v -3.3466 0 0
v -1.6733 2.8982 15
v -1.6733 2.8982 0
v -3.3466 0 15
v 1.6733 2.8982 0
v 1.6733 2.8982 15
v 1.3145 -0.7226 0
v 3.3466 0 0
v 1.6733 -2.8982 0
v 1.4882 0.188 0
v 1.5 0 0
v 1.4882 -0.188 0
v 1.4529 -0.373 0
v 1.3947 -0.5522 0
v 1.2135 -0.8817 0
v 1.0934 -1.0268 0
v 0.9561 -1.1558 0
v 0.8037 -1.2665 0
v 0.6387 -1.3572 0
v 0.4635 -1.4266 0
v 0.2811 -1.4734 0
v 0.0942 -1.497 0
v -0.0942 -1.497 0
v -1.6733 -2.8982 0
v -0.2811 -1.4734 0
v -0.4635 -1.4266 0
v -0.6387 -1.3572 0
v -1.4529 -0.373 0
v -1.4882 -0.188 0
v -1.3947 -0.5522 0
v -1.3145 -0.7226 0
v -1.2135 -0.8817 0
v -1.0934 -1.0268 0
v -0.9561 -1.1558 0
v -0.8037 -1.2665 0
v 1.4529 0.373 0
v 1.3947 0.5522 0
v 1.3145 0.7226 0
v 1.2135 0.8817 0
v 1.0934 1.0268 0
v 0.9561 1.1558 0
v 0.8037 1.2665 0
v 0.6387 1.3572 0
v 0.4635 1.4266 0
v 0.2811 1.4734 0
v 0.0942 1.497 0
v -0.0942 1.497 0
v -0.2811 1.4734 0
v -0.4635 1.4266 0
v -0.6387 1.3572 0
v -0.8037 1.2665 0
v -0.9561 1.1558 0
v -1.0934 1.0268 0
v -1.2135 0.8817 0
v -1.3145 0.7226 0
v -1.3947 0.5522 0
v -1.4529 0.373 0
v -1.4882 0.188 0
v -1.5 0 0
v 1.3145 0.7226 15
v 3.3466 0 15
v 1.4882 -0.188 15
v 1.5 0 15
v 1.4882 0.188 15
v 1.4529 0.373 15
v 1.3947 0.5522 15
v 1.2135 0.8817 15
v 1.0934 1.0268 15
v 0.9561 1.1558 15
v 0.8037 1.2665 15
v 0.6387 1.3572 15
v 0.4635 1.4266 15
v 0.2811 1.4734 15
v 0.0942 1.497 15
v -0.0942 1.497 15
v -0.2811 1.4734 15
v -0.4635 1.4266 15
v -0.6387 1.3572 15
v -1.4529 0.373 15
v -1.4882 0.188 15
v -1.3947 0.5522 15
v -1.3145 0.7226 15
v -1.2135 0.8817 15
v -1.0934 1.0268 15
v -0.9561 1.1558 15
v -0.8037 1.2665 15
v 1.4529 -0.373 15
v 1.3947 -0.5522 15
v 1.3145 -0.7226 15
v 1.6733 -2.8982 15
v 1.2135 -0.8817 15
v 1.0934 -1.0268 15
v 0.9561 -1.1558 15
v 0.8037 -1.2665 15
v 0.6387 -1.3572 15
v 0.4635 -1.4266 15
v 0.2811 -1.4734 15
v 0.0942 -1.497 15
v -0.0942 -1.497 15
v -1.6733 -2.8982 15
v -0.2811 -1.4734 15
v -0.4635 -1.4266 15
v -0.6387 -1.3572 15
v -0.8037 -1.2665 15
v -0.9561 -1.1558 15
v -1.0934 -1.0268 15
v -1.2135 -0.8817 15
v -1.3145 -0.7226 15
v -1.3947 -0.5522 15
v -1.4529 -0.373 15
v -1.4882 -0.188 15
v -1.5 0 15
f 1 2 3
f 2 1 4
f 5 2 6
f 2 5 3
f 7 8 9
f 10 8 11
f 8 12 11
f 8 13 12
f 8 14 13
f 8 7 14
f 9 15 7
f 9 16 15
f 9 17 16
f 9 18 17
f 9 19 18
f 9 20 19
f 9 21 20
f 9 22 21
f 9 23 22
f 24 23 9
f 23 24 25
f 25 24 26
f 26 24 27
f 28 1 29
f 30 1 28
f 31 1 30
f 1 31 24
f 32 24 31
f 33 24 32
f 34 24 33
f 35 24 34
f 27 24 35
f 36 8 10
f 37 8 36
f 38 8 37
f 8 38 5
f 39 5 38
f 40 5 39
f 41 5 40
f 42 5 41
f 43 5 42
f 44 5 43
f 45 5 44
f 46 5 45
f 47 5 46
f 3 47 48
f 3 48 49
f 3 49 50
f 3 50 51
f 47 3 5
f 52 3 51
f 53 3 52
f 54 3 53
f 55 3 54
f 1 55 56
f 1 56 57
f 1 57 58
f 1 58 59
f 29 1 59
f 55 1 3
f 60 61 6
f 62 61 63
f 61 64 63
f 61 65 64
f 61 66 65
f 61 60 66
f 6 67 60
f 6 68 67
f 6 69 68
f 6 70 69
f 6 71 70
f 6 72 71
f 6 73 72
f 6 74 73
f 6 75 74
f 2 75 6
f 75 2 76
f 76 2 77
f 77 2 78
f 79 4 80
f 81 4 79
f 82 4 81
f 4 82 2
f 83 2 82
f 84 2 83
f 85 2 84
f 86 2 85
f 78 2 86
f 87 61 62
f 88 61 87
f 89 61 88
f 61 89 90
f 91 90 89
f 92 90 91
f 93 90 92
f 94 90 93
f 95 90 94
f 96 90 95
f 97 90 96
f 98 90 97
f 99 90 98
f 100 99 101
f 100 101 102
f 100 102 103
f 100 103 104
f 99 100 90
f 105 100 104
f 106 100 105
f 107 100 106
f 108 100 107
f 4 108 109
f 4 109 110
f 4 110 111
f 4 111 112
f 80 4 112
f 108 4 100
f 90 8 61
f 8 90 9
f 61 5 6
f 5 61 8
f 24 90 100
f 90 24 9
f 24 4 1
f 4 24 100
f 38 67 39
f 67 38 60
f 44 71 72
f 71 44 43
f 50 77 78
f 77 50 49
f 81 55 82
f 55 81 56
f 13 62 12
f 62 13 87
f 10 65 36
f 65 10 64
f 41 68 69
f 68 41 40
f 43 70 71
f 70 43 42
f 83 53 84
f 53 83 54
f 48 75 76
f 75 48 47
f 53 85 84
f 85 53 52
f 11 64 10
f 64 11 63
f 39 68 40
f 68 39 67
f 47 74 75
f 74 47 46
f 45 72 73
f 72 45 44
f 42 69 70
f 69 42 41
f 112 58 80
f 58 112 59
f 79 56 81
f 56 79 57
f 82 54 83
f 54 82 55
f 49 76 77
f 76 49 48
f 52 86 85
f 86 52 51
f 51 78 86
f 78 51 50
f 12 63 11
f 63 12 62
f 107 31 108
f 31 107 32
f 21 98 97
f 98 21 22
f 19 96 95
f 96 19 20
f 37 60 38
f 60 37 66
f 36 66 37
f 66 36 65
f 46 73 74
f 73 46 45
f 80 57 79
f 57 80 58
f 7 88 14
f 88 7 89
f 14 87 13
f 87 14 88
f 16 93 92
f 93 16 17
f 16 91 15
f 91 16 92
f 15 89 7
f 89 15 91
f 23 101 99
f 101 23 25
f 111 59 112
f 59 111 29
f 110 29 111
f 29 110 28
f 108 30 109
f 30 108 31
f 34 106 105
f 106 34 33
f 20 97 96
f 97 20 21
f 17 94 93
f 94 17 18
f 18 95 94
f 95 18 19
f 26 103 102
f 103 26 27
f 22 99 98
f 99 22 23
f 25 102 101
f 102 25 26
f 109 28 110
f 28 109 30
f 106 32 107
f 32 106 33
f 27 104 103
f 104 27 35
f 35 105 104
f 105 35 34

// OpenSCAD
$fn = 50;


difference() {
	union() {
		linear_extrude(height = 15) {
			polygon(points = [[3.3466000000, 0.0000000000], [1.6733000000, 2.8982406163], [-1.6733000000, 2.8982406163], [-3.3466000000, 0.0000000000], [-1.6733000000, -2.8982406163], [1.6733000000, -2.8982406163]]);
		}
	}
	union() {
		cylinder(h = 15, r = 1.5000000000);
	}
}
